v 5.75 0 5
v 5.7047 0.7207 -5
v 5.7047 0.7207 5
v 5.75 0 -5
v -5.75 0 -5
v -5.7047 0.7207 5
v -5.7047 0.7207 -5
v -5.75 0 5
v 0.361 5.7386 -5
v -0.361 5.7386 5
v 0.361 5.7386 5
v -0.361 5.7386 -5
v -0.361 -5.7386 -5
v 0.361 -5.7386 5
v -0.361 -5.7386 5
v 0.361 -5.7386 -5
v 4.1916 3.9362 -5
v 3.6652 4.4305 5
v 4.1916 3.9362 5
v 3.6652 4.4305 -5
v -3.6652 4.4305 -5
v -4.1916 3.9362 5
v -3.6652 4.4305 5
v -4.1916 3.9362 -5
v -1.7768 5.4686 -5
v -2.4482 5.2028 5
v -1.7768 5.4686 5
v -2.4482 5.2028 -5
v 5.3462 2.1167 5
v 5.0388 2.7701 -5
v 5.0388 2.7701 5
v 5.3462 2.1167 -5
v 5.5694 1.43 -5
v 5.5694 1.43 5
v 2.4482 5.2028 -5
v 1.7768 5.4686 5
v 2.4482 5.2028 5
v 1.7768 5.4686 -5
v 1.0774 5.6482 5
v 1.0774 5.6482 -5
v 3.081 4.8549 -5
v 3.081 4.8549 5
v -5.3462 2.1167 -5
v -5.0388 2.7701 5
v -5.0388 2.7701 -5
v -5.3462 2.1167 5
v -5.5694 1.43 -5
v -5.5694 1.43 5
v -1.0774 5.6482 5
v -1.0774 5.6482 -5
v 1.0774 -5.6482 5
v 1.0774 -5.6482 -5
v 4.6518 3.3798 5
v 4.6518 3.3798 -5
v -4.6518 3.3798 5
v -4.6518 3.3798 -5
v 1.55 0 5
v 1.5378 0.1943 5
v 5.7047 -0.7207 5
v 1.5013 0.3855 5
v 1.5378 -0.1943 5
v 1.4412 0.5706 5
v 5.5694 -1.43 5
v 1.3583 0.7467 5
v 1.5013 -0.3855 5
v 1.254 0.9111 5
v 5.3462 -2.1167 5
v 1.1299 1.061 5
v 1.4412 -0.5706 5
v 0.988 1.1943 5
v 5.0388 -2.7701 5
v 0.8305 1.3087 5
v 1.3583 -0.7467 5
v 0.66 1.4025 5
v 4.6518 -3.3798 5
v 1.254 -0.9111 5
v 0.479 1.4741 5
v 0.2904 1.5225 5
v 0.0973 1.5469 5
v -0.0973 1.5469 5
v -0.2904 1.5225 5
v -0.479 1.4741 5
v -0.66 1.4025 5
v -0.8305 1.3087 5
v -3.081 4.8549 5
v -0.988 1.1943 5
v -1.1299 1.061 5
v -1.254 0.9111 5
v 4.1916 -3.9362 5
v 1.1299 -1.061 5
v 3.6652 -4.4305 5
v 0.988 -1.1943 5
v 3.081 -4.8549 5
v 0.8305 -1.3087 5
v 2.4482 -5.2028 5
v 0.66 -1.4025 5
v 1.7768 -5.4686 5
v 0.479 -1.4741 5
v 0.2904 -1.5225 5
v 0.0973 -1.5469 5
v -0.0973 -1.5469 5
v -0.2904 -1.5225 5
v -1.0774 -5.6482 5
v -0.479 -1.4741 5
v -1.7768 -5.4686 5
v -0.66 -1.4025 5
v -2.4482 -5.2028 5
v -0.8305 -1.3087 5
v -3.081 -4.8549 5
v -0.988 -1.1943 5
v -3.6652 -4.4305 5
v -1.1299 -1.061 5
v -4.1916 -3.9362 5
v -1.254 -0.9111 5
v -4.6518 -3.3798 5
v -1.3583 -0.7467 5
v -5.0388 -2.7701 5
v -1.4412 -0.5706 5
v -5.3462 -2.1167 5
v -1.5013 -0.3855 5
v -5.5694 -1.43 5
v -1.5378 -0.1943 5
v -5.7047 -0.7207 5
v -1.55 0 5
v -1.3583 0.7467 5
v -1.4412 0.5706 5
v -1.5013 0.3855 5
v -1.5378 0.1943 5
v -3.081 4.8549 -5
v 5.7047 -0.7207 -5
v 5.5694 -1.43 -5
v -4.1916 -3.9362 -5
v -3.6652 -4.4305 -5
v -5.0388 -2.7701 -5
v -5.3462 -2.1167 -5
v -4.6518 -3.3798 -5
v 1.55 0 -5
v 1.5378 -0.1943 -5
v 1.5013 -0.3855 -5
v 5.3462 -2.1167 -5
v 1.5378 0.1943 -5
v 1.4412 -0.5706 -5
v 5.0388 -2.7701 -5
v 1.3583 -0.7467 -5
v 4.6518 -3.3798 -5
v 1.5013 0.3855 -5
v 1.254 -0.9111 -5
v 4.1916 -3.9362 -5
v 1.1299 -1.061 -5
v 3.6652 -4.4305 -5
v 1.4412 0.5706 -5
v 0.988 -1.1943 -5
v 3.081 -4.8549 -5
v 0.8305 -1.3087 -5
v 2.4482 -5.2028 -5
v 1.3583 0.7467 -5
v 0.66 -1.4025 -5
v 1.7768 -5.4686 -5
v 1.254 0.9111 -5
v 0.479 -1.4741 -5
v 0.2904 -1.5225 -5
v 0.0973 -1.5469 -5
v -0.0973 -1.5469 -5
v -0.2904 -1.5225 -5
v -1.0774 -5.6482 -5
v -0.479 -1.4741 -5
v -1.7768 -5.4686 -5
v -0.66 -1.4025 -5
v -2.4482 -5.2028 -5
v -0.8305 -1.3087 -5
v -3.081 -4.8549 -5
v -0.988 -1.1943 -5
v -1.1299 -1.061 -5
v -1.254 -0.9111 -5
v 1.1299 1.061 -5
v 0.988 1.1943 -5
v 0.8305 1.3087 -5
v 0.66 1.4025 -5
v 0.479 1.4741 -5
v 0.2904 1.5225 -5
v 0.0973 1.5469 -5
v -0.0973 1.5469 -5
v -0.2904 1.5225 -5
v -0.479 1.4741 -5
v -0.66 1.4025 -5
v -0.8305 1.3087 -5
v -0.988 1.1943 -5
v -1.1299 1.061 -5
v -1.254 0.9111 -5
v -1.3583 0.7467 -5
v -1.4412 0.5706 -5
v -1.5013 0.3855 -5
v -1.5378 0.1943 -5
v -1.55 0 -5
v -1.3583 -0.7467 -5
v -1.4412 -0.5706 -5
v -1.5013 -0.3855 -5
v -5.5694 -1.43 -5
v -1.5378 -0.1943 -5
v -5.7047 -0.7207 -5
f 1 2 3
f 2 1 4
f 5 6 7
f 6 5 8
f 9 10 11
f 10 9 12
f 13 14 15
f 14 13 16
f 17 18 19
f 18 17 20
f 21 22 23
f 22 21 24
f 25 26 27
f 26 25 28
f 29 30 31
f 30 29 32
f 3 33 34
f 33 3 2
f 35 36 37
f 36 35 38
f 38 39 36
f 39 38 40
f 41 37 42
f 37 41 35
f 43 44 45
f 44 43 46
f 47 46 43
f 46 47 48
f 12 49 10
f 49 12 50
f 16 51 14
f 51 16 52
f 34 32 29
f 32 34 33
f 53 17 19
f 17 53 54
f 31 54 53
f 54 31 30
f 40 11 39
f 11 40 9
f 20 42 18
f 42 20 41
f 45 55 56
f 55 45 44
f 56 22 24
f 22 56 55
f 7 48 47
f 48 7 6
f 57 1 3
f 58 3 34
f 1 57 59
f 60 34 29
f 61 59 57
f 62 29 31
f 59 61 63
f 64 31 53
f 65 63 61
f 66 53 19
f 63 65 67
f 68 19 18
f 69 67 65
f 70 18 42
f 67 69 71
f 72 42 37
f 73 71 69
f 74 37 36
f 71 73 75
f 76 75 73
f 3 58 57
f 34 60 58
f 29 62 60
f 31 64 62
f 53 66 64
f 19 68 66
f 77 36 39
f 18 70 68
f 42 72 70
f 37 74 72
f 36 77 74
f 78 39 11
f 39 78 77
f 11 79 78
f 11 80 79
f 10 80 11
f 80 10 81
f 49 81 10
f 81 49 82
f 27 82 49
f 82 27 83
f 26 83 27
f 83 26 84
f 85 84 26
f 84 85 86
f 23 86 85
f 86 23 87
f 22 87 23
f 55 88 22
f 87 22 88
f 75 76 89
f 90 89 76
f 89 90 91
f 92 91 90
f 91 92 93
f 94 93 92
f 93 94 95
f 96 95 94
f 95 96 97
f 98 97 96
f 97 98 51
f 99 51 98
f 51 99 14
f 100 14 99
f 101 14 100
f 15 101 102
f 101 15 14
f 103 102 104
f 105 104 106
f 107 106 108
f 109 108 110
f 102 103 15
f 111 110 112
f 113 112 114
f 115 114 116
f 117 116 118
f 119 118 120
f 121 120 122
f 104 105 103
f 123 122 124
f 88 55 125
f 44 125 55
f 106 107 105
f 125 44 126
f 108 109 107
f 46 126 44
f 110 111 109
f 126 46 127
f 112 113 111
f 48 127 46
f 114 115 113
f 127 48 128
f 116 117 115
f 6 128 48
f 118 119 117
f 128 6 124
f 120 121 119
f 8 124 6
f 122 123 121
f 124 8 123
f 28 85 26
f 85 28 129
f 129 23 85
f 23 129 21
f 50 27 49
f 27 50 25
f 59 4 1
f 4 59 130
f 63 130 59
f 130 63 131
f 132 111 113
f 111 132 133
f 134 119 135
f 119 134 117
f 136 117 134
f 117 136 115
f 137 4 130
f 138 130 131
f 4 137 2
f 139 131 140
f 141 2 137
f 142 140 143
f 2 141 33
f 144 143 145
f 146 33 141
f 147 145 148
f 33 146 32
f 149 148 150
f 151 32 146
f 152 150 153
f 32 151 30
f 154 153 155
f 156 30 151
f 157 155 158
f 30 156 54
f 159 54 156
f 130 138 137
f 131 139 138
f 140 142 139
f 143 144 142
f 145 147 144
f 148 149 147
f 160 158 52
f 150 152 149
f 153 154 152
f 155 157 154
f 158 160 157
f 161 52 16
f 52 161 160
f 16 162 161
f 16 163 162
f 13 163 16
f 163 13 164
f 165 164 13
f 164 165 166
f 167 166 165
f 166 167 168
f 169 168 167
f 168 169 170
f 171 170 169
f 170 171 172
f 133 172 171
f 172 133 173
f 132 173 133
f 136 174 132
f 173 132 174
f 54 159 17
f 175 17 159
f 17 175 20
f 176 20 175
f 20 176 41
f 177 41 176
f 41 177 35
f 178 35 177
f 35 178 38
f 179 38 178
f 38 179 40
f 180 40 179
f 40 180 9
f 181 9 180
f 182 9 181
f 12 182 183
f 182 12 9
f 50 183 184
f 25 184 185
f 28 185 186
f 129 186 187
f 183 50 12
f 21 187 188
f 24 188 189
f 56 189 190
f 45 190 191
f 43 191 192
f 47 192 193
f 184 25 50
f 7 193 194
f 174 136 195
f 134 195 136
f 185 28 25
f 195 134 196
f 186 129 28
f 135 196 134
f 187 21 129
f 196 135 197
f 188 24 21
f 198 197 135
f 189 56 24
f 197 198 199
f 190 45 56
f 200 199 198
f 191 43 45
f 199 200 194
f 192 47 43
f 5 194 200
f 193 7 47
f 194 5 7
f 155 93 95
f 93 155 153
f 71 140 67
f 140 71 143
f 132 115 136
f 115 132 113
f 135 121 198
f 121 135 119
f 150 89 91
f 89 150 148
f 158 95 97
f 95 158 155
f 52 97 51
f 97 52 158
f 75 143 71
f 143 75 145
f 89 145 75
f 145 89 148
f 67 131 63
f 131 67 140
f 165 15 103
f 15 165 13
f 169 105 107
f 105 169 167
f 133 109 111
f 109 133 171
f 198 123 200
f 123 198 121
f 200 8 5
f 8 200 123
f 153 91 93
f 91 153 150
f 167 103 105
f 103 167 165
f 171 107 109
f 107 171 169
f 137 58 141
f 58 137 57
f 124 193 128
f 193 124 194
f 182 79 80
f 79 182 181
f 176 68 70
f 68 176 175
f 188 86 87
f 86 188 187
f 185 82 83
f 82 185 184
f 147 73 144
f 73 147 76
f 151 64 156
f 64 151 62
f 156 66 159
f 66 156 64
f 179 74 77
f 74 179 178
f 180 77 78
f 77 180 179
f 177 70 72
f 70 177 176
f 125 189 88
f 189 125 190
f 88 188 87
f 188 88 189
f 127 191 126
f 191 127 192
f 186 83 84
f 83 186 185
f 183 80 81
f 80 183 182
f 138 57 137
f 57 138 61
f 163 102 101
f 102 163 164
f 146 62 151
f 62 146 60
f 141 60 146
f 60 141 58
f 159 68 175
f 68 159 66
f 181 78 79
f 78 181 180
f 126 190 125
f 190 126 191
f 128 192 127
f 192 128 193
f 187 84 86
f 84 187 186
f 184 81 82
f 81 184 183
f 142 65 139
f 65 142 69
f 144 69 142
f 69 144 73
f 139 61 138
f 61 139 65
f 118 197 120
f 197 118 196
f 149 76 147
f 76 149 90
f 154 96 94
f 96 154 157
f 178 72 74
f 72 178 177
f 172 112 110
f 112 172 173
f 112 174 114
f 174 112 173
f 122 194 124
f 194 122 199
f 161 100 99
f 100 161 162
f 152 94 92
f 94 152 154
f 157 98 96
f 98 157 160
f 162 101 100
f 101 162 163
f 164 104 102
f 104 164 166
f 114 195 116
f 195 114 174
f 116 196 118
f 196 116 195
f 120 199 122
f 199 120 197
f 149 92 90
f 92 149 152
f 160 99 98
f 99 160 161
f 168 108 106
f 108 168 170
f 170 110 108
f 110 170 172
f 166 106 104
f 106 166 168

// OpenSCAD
$fn = 50;


difference() {
	union() {
		translate(v = [0, 0, -5.0000000000]) {
			cylinder(h = 10, r = 5.7500000000);
		}
	}
	union() {
		translate(v = [0, 0, -100.0000000000]) {
			cylinder(h = 200, r = 1.5500000000);
		}
	}
}
